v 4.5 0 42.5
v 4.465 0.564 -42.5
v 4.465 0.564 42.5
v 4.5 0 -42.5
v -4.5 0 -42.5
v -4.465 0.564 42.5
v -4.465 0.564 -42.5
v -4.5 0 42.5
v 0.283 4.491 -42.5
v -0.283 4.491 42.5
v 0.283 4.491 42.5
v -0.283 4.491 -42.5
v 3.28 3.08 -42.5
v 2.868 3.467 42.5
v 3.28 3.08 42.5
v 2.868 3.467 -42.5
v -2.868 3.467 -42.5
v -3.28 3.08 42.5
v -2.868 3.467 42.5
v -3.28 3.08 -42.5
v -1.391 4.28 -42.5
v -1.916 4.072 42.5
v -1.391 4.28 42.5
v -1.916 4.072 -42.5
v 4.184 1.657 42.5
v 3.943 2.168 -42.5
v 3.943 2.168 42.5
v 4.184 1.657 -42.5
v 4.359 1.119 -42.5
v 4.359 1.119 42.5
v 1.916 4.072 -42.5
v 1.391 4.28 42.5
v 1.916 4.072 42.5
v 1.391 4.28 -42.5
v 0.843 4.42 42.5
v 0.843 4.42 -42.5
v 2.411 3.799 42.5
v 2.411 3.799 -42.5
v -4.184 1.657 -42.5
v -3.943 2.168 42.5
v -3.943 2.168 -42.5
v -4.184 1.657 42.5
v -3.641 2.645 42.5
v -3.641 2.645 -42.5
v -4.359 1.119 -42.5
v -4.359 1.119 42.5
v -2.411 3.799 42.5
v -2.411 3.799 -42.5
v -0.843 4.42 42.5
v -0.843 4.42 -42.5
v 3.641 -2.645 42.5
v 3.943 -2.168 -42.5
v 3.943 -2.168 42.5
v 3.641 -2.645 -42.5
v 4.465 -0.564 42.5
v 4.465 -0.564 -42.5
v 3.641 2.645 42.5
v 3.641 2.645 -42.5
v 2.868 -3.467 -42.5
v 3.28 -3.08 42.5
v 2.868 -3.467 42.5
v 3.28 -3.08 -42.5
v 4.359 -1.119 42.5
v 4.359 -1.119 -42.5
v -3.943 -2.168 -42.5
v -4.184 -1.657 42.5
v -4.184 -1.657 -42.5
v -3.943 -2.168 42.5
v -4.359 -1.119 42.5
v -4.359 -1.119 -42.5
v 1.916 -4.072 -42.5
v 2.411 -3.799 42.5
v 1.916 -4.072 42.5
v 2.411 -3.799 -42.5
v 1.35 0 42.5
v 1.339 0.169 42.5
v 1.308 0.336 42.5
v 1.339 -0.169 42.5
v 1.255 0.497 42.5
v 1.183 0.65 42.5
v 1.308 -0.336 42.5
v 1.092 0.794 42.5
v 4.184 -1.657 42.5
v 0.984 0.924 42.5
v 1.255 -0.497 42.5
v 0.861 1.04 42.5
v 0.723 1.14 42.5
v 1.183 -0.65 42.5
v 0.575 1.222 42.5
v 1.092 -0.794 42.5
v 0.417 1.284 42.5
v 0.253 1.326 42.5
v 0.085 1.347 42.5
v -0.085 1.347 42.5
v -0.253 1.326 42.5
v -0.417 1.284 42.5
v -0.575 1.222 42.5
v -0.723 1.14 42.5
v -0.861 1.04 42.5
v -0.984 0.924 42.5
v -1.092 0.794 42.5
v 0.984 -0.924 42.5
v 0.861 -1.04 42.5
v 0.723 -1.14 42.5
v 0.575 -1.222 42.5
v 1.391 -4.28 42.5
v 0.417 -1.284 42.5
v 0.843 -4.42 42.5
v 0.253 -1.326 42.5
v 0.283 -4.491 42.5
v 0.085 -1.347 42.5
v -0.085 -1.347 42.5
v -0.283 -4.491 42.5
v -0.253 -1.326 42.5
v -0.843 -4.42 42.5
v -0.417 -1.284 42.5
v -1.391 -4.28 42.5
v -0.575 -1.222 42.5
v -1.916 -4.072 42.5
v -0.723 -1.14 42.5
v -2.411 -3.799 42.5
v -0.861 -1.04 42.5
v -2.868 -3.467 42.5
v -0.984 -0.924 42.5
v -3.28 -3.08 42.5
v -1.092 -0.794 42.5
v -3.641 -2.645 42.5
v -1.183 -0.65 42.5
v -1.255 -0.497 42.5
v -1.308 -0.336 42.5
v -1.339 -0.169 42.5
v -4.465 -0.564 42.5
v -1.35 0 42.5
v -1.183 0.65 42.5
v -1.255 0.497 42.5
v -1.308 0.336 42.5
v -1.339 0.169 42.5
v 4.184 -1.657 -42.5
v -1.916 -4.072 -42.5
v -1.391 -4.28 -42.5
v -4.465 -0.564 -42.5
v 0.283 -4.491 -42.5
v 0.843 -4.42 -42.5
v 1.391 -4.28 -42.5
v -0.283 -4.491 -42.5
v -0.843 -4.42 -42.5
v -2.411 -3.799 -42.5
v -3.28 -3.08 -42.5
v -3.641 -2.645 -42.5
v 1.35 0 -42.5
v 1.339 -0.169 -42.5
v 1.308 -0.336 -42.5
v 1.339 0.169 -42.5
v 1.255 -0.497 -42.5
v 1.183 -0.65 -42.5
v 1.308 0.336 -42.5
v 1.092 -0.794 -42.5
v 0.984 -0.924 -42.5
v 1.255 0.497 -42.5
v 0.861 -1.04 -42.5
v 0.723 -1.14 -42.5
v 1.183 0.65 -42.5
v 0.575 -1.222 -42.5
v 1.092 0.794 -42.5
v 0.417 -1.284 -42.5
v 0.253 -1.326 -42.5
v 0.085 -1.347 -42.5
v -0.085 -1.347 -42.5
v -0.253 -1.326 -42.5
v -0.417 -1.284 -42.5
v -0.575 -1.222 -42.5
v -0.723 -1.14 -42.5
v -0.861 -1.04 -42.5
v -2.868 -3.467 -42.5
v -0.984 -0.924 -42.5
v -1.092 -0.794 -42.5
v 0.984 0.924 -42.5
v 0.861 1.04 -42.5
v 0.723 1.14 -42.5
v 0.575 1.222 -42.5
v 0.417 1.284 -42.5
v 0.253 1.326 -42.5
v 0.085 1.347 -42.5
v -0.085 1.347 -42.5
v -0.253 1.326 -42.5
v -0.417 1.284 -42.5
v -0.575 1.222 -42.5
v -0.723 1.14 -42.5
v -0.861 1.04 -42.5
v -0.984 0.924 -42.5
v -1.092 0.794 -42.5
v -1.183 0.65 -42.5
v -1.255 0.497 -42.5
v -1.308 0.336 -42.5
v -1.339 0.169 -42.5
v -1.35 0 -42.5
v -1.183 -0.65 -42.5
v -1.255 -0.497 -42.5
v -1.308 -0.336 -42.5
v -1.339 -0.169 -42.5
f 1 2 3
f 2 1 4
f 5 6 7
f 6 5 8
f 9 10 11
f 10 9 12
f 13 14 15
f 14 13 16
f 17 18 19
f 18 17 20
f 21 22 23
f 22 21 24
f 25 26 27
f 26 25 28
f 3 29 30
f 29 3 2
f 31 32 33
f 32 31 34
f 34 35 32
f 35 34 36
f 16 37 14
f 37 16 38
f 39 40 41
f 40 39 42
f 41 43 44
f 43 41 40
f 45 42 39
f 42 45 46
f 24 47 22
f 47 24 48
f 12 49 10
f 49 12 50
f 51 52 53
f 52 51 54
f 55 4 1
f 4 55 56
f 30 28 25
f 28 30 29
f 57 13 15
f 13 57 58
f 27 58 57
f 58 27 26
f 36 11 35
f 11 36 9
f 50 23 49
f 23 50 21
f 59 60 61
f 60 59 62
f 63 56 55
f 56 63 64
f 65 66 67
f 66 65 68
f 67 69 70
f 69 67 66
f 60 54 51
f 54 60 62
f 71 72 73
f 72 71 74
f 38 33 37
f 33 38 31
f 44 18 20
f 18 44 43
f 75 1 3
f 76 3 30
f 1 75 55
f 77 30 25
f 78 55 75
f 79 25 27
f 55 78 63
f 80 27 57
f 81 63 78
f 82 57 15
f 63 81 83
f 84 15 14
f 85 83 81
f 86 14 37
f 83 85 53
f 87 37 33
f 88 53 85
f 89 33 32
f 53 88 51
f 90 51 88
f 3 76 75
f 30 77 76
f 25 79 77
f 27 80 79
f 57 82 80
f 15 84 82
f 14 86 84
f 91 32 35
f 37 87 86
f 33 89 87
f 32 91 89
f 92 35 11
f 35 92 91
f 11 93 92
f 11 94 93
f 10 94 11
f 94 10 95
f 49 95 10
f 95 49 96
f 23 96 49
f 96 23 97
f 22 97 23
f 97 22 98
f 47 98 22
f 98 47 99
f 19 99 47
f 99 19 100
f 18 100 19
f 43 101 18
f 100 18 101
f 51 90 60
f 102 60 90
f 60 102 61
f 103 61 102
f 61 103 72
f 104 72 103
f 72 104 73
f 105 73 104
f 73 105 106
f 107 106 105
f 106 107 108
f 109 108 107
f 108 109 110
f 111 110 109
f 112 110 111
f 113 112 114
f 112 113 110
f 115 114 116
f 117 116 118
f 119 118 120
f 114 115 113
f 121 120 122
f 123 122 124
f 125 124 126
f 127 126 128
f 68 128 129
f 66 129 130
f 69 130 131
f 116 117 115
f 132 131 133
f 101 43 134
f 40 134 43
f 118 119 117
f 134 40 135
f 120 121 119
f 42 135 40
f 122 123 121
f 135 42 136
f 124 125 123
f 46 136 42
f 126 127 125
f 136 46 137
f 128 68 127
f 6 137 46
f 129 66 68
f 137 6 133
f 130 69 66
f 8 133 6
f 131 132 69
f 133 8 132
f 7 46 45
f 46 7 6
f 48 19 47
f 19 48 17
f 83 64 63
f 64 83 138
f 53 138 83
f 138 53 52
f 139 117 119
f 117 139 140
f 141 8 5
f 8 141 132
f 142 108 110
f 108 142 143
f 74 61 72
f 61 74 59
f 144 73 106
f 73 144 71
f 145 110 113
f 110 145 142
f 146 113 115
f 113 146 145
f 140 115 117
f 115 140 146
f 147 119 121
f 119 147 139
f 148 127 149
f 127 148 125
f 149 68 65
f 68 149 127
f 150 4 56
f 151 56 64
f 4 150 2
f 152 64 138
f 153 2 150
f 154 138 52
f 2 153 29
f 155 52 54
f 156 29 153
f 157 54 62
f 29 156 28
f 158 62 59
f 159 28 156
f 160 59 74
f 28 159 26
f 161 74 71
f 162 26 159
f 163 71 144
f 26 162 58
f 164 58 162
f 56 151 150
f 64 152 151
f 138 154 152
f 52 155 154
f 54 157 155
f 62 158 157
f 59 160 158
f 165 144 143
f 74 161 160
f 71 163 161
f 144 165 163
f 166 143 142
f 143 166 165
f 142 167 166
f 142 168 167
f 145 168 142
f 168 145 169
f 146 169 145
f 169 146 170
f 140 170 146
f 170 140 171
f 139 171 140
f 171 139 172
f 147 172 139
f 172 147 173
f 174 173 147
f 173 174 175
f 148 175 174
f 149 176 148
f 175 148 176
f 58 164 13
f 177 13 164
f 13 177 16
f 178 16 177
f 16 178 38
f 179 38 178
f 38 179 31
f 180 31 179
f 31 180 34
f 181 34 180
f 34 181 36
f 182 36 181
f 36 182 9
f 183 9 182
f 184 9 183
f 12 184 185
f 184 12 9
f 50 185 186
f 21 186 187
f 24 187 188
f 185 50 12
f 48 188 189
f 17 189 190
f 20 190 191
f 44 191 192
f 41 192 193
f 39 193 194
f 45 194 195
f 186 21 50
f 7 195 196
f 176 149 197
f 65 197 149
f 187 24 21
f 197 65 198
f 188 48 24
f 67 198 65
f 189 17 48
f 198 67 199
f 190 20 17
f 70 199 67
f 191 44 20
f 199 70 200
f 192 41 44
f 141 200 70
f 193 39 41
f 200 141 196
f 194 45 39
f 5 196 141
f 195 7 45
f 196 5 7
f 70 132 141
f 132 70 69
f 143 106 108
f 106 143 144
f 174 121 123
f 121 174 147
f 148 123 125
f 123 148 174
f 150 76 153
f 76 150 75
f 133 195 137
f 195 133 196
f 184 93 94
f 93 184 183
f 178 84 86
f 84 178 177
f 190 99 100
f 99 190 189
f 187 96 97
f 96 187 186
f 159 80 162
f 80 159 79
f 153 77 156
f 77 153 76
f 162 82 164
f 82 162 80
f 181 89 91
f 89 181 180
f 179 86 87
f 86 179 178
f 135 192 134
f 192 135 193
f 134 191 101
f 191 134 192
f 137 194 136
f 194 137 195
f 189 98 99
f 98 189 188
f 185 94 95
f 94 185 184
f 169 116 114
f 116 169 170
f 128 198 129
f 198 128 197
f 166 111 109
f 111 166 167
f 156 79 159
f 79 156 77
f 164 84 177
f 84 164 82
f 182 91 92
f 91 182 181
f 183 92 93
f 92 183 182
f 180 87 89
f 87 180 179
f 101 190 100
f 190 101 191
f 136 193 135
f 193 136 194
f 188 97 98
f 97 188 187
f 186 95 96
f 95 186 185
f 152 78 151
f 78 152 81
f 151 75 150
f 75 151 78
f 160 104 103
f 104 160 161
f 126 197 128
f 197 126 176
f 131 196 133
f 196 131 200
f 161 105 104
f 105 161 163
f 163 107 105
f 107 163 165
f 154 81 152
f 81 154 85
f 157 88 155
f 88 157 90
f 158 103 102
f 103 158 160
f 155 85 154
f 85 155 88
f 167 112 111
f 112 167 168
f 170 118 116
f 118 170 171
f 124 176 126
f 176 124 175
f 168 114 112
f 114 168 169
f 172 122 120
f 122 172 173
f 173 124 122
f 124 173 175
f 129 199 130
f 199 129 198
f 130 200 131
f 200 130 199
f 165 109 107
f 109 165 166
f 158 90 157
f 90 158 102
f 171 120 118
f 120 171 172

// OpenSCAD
$fn = 50;


difference() {
	union() {
		translate(v = [0, 0, -42.5000000000]) {
			cylinder(h = 85, r = 4.5000000000);
		}
	}
	union() {
		translate(v = [0, 0, -100.0000000000]) {
			cylinder(h = 200, r = 1.3500000000);
		}
	}
}
